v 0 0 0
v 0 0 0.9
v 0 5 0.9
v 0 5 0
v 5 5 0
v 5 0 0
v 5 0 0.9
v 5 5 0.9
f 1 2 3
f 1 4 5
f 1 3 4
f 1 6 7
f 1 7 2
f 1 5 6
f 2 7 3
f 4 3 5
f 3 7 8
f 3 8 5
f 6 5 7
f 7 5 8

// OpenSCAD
/* Warning, this is a very basic generator with a lot of approximation 
input data : [VQFN, PJA, 5x5x0.9mm, 36, , A, C04-01040A]
generated by com.zoubworld.electronics.cad.model3d.Basic
Date : Sun Feb 15 10:50:49 CET 2026
*/

//body
color("black")
translate([0,0,0])
cube([5.0,5.0,0.9], center=false);
